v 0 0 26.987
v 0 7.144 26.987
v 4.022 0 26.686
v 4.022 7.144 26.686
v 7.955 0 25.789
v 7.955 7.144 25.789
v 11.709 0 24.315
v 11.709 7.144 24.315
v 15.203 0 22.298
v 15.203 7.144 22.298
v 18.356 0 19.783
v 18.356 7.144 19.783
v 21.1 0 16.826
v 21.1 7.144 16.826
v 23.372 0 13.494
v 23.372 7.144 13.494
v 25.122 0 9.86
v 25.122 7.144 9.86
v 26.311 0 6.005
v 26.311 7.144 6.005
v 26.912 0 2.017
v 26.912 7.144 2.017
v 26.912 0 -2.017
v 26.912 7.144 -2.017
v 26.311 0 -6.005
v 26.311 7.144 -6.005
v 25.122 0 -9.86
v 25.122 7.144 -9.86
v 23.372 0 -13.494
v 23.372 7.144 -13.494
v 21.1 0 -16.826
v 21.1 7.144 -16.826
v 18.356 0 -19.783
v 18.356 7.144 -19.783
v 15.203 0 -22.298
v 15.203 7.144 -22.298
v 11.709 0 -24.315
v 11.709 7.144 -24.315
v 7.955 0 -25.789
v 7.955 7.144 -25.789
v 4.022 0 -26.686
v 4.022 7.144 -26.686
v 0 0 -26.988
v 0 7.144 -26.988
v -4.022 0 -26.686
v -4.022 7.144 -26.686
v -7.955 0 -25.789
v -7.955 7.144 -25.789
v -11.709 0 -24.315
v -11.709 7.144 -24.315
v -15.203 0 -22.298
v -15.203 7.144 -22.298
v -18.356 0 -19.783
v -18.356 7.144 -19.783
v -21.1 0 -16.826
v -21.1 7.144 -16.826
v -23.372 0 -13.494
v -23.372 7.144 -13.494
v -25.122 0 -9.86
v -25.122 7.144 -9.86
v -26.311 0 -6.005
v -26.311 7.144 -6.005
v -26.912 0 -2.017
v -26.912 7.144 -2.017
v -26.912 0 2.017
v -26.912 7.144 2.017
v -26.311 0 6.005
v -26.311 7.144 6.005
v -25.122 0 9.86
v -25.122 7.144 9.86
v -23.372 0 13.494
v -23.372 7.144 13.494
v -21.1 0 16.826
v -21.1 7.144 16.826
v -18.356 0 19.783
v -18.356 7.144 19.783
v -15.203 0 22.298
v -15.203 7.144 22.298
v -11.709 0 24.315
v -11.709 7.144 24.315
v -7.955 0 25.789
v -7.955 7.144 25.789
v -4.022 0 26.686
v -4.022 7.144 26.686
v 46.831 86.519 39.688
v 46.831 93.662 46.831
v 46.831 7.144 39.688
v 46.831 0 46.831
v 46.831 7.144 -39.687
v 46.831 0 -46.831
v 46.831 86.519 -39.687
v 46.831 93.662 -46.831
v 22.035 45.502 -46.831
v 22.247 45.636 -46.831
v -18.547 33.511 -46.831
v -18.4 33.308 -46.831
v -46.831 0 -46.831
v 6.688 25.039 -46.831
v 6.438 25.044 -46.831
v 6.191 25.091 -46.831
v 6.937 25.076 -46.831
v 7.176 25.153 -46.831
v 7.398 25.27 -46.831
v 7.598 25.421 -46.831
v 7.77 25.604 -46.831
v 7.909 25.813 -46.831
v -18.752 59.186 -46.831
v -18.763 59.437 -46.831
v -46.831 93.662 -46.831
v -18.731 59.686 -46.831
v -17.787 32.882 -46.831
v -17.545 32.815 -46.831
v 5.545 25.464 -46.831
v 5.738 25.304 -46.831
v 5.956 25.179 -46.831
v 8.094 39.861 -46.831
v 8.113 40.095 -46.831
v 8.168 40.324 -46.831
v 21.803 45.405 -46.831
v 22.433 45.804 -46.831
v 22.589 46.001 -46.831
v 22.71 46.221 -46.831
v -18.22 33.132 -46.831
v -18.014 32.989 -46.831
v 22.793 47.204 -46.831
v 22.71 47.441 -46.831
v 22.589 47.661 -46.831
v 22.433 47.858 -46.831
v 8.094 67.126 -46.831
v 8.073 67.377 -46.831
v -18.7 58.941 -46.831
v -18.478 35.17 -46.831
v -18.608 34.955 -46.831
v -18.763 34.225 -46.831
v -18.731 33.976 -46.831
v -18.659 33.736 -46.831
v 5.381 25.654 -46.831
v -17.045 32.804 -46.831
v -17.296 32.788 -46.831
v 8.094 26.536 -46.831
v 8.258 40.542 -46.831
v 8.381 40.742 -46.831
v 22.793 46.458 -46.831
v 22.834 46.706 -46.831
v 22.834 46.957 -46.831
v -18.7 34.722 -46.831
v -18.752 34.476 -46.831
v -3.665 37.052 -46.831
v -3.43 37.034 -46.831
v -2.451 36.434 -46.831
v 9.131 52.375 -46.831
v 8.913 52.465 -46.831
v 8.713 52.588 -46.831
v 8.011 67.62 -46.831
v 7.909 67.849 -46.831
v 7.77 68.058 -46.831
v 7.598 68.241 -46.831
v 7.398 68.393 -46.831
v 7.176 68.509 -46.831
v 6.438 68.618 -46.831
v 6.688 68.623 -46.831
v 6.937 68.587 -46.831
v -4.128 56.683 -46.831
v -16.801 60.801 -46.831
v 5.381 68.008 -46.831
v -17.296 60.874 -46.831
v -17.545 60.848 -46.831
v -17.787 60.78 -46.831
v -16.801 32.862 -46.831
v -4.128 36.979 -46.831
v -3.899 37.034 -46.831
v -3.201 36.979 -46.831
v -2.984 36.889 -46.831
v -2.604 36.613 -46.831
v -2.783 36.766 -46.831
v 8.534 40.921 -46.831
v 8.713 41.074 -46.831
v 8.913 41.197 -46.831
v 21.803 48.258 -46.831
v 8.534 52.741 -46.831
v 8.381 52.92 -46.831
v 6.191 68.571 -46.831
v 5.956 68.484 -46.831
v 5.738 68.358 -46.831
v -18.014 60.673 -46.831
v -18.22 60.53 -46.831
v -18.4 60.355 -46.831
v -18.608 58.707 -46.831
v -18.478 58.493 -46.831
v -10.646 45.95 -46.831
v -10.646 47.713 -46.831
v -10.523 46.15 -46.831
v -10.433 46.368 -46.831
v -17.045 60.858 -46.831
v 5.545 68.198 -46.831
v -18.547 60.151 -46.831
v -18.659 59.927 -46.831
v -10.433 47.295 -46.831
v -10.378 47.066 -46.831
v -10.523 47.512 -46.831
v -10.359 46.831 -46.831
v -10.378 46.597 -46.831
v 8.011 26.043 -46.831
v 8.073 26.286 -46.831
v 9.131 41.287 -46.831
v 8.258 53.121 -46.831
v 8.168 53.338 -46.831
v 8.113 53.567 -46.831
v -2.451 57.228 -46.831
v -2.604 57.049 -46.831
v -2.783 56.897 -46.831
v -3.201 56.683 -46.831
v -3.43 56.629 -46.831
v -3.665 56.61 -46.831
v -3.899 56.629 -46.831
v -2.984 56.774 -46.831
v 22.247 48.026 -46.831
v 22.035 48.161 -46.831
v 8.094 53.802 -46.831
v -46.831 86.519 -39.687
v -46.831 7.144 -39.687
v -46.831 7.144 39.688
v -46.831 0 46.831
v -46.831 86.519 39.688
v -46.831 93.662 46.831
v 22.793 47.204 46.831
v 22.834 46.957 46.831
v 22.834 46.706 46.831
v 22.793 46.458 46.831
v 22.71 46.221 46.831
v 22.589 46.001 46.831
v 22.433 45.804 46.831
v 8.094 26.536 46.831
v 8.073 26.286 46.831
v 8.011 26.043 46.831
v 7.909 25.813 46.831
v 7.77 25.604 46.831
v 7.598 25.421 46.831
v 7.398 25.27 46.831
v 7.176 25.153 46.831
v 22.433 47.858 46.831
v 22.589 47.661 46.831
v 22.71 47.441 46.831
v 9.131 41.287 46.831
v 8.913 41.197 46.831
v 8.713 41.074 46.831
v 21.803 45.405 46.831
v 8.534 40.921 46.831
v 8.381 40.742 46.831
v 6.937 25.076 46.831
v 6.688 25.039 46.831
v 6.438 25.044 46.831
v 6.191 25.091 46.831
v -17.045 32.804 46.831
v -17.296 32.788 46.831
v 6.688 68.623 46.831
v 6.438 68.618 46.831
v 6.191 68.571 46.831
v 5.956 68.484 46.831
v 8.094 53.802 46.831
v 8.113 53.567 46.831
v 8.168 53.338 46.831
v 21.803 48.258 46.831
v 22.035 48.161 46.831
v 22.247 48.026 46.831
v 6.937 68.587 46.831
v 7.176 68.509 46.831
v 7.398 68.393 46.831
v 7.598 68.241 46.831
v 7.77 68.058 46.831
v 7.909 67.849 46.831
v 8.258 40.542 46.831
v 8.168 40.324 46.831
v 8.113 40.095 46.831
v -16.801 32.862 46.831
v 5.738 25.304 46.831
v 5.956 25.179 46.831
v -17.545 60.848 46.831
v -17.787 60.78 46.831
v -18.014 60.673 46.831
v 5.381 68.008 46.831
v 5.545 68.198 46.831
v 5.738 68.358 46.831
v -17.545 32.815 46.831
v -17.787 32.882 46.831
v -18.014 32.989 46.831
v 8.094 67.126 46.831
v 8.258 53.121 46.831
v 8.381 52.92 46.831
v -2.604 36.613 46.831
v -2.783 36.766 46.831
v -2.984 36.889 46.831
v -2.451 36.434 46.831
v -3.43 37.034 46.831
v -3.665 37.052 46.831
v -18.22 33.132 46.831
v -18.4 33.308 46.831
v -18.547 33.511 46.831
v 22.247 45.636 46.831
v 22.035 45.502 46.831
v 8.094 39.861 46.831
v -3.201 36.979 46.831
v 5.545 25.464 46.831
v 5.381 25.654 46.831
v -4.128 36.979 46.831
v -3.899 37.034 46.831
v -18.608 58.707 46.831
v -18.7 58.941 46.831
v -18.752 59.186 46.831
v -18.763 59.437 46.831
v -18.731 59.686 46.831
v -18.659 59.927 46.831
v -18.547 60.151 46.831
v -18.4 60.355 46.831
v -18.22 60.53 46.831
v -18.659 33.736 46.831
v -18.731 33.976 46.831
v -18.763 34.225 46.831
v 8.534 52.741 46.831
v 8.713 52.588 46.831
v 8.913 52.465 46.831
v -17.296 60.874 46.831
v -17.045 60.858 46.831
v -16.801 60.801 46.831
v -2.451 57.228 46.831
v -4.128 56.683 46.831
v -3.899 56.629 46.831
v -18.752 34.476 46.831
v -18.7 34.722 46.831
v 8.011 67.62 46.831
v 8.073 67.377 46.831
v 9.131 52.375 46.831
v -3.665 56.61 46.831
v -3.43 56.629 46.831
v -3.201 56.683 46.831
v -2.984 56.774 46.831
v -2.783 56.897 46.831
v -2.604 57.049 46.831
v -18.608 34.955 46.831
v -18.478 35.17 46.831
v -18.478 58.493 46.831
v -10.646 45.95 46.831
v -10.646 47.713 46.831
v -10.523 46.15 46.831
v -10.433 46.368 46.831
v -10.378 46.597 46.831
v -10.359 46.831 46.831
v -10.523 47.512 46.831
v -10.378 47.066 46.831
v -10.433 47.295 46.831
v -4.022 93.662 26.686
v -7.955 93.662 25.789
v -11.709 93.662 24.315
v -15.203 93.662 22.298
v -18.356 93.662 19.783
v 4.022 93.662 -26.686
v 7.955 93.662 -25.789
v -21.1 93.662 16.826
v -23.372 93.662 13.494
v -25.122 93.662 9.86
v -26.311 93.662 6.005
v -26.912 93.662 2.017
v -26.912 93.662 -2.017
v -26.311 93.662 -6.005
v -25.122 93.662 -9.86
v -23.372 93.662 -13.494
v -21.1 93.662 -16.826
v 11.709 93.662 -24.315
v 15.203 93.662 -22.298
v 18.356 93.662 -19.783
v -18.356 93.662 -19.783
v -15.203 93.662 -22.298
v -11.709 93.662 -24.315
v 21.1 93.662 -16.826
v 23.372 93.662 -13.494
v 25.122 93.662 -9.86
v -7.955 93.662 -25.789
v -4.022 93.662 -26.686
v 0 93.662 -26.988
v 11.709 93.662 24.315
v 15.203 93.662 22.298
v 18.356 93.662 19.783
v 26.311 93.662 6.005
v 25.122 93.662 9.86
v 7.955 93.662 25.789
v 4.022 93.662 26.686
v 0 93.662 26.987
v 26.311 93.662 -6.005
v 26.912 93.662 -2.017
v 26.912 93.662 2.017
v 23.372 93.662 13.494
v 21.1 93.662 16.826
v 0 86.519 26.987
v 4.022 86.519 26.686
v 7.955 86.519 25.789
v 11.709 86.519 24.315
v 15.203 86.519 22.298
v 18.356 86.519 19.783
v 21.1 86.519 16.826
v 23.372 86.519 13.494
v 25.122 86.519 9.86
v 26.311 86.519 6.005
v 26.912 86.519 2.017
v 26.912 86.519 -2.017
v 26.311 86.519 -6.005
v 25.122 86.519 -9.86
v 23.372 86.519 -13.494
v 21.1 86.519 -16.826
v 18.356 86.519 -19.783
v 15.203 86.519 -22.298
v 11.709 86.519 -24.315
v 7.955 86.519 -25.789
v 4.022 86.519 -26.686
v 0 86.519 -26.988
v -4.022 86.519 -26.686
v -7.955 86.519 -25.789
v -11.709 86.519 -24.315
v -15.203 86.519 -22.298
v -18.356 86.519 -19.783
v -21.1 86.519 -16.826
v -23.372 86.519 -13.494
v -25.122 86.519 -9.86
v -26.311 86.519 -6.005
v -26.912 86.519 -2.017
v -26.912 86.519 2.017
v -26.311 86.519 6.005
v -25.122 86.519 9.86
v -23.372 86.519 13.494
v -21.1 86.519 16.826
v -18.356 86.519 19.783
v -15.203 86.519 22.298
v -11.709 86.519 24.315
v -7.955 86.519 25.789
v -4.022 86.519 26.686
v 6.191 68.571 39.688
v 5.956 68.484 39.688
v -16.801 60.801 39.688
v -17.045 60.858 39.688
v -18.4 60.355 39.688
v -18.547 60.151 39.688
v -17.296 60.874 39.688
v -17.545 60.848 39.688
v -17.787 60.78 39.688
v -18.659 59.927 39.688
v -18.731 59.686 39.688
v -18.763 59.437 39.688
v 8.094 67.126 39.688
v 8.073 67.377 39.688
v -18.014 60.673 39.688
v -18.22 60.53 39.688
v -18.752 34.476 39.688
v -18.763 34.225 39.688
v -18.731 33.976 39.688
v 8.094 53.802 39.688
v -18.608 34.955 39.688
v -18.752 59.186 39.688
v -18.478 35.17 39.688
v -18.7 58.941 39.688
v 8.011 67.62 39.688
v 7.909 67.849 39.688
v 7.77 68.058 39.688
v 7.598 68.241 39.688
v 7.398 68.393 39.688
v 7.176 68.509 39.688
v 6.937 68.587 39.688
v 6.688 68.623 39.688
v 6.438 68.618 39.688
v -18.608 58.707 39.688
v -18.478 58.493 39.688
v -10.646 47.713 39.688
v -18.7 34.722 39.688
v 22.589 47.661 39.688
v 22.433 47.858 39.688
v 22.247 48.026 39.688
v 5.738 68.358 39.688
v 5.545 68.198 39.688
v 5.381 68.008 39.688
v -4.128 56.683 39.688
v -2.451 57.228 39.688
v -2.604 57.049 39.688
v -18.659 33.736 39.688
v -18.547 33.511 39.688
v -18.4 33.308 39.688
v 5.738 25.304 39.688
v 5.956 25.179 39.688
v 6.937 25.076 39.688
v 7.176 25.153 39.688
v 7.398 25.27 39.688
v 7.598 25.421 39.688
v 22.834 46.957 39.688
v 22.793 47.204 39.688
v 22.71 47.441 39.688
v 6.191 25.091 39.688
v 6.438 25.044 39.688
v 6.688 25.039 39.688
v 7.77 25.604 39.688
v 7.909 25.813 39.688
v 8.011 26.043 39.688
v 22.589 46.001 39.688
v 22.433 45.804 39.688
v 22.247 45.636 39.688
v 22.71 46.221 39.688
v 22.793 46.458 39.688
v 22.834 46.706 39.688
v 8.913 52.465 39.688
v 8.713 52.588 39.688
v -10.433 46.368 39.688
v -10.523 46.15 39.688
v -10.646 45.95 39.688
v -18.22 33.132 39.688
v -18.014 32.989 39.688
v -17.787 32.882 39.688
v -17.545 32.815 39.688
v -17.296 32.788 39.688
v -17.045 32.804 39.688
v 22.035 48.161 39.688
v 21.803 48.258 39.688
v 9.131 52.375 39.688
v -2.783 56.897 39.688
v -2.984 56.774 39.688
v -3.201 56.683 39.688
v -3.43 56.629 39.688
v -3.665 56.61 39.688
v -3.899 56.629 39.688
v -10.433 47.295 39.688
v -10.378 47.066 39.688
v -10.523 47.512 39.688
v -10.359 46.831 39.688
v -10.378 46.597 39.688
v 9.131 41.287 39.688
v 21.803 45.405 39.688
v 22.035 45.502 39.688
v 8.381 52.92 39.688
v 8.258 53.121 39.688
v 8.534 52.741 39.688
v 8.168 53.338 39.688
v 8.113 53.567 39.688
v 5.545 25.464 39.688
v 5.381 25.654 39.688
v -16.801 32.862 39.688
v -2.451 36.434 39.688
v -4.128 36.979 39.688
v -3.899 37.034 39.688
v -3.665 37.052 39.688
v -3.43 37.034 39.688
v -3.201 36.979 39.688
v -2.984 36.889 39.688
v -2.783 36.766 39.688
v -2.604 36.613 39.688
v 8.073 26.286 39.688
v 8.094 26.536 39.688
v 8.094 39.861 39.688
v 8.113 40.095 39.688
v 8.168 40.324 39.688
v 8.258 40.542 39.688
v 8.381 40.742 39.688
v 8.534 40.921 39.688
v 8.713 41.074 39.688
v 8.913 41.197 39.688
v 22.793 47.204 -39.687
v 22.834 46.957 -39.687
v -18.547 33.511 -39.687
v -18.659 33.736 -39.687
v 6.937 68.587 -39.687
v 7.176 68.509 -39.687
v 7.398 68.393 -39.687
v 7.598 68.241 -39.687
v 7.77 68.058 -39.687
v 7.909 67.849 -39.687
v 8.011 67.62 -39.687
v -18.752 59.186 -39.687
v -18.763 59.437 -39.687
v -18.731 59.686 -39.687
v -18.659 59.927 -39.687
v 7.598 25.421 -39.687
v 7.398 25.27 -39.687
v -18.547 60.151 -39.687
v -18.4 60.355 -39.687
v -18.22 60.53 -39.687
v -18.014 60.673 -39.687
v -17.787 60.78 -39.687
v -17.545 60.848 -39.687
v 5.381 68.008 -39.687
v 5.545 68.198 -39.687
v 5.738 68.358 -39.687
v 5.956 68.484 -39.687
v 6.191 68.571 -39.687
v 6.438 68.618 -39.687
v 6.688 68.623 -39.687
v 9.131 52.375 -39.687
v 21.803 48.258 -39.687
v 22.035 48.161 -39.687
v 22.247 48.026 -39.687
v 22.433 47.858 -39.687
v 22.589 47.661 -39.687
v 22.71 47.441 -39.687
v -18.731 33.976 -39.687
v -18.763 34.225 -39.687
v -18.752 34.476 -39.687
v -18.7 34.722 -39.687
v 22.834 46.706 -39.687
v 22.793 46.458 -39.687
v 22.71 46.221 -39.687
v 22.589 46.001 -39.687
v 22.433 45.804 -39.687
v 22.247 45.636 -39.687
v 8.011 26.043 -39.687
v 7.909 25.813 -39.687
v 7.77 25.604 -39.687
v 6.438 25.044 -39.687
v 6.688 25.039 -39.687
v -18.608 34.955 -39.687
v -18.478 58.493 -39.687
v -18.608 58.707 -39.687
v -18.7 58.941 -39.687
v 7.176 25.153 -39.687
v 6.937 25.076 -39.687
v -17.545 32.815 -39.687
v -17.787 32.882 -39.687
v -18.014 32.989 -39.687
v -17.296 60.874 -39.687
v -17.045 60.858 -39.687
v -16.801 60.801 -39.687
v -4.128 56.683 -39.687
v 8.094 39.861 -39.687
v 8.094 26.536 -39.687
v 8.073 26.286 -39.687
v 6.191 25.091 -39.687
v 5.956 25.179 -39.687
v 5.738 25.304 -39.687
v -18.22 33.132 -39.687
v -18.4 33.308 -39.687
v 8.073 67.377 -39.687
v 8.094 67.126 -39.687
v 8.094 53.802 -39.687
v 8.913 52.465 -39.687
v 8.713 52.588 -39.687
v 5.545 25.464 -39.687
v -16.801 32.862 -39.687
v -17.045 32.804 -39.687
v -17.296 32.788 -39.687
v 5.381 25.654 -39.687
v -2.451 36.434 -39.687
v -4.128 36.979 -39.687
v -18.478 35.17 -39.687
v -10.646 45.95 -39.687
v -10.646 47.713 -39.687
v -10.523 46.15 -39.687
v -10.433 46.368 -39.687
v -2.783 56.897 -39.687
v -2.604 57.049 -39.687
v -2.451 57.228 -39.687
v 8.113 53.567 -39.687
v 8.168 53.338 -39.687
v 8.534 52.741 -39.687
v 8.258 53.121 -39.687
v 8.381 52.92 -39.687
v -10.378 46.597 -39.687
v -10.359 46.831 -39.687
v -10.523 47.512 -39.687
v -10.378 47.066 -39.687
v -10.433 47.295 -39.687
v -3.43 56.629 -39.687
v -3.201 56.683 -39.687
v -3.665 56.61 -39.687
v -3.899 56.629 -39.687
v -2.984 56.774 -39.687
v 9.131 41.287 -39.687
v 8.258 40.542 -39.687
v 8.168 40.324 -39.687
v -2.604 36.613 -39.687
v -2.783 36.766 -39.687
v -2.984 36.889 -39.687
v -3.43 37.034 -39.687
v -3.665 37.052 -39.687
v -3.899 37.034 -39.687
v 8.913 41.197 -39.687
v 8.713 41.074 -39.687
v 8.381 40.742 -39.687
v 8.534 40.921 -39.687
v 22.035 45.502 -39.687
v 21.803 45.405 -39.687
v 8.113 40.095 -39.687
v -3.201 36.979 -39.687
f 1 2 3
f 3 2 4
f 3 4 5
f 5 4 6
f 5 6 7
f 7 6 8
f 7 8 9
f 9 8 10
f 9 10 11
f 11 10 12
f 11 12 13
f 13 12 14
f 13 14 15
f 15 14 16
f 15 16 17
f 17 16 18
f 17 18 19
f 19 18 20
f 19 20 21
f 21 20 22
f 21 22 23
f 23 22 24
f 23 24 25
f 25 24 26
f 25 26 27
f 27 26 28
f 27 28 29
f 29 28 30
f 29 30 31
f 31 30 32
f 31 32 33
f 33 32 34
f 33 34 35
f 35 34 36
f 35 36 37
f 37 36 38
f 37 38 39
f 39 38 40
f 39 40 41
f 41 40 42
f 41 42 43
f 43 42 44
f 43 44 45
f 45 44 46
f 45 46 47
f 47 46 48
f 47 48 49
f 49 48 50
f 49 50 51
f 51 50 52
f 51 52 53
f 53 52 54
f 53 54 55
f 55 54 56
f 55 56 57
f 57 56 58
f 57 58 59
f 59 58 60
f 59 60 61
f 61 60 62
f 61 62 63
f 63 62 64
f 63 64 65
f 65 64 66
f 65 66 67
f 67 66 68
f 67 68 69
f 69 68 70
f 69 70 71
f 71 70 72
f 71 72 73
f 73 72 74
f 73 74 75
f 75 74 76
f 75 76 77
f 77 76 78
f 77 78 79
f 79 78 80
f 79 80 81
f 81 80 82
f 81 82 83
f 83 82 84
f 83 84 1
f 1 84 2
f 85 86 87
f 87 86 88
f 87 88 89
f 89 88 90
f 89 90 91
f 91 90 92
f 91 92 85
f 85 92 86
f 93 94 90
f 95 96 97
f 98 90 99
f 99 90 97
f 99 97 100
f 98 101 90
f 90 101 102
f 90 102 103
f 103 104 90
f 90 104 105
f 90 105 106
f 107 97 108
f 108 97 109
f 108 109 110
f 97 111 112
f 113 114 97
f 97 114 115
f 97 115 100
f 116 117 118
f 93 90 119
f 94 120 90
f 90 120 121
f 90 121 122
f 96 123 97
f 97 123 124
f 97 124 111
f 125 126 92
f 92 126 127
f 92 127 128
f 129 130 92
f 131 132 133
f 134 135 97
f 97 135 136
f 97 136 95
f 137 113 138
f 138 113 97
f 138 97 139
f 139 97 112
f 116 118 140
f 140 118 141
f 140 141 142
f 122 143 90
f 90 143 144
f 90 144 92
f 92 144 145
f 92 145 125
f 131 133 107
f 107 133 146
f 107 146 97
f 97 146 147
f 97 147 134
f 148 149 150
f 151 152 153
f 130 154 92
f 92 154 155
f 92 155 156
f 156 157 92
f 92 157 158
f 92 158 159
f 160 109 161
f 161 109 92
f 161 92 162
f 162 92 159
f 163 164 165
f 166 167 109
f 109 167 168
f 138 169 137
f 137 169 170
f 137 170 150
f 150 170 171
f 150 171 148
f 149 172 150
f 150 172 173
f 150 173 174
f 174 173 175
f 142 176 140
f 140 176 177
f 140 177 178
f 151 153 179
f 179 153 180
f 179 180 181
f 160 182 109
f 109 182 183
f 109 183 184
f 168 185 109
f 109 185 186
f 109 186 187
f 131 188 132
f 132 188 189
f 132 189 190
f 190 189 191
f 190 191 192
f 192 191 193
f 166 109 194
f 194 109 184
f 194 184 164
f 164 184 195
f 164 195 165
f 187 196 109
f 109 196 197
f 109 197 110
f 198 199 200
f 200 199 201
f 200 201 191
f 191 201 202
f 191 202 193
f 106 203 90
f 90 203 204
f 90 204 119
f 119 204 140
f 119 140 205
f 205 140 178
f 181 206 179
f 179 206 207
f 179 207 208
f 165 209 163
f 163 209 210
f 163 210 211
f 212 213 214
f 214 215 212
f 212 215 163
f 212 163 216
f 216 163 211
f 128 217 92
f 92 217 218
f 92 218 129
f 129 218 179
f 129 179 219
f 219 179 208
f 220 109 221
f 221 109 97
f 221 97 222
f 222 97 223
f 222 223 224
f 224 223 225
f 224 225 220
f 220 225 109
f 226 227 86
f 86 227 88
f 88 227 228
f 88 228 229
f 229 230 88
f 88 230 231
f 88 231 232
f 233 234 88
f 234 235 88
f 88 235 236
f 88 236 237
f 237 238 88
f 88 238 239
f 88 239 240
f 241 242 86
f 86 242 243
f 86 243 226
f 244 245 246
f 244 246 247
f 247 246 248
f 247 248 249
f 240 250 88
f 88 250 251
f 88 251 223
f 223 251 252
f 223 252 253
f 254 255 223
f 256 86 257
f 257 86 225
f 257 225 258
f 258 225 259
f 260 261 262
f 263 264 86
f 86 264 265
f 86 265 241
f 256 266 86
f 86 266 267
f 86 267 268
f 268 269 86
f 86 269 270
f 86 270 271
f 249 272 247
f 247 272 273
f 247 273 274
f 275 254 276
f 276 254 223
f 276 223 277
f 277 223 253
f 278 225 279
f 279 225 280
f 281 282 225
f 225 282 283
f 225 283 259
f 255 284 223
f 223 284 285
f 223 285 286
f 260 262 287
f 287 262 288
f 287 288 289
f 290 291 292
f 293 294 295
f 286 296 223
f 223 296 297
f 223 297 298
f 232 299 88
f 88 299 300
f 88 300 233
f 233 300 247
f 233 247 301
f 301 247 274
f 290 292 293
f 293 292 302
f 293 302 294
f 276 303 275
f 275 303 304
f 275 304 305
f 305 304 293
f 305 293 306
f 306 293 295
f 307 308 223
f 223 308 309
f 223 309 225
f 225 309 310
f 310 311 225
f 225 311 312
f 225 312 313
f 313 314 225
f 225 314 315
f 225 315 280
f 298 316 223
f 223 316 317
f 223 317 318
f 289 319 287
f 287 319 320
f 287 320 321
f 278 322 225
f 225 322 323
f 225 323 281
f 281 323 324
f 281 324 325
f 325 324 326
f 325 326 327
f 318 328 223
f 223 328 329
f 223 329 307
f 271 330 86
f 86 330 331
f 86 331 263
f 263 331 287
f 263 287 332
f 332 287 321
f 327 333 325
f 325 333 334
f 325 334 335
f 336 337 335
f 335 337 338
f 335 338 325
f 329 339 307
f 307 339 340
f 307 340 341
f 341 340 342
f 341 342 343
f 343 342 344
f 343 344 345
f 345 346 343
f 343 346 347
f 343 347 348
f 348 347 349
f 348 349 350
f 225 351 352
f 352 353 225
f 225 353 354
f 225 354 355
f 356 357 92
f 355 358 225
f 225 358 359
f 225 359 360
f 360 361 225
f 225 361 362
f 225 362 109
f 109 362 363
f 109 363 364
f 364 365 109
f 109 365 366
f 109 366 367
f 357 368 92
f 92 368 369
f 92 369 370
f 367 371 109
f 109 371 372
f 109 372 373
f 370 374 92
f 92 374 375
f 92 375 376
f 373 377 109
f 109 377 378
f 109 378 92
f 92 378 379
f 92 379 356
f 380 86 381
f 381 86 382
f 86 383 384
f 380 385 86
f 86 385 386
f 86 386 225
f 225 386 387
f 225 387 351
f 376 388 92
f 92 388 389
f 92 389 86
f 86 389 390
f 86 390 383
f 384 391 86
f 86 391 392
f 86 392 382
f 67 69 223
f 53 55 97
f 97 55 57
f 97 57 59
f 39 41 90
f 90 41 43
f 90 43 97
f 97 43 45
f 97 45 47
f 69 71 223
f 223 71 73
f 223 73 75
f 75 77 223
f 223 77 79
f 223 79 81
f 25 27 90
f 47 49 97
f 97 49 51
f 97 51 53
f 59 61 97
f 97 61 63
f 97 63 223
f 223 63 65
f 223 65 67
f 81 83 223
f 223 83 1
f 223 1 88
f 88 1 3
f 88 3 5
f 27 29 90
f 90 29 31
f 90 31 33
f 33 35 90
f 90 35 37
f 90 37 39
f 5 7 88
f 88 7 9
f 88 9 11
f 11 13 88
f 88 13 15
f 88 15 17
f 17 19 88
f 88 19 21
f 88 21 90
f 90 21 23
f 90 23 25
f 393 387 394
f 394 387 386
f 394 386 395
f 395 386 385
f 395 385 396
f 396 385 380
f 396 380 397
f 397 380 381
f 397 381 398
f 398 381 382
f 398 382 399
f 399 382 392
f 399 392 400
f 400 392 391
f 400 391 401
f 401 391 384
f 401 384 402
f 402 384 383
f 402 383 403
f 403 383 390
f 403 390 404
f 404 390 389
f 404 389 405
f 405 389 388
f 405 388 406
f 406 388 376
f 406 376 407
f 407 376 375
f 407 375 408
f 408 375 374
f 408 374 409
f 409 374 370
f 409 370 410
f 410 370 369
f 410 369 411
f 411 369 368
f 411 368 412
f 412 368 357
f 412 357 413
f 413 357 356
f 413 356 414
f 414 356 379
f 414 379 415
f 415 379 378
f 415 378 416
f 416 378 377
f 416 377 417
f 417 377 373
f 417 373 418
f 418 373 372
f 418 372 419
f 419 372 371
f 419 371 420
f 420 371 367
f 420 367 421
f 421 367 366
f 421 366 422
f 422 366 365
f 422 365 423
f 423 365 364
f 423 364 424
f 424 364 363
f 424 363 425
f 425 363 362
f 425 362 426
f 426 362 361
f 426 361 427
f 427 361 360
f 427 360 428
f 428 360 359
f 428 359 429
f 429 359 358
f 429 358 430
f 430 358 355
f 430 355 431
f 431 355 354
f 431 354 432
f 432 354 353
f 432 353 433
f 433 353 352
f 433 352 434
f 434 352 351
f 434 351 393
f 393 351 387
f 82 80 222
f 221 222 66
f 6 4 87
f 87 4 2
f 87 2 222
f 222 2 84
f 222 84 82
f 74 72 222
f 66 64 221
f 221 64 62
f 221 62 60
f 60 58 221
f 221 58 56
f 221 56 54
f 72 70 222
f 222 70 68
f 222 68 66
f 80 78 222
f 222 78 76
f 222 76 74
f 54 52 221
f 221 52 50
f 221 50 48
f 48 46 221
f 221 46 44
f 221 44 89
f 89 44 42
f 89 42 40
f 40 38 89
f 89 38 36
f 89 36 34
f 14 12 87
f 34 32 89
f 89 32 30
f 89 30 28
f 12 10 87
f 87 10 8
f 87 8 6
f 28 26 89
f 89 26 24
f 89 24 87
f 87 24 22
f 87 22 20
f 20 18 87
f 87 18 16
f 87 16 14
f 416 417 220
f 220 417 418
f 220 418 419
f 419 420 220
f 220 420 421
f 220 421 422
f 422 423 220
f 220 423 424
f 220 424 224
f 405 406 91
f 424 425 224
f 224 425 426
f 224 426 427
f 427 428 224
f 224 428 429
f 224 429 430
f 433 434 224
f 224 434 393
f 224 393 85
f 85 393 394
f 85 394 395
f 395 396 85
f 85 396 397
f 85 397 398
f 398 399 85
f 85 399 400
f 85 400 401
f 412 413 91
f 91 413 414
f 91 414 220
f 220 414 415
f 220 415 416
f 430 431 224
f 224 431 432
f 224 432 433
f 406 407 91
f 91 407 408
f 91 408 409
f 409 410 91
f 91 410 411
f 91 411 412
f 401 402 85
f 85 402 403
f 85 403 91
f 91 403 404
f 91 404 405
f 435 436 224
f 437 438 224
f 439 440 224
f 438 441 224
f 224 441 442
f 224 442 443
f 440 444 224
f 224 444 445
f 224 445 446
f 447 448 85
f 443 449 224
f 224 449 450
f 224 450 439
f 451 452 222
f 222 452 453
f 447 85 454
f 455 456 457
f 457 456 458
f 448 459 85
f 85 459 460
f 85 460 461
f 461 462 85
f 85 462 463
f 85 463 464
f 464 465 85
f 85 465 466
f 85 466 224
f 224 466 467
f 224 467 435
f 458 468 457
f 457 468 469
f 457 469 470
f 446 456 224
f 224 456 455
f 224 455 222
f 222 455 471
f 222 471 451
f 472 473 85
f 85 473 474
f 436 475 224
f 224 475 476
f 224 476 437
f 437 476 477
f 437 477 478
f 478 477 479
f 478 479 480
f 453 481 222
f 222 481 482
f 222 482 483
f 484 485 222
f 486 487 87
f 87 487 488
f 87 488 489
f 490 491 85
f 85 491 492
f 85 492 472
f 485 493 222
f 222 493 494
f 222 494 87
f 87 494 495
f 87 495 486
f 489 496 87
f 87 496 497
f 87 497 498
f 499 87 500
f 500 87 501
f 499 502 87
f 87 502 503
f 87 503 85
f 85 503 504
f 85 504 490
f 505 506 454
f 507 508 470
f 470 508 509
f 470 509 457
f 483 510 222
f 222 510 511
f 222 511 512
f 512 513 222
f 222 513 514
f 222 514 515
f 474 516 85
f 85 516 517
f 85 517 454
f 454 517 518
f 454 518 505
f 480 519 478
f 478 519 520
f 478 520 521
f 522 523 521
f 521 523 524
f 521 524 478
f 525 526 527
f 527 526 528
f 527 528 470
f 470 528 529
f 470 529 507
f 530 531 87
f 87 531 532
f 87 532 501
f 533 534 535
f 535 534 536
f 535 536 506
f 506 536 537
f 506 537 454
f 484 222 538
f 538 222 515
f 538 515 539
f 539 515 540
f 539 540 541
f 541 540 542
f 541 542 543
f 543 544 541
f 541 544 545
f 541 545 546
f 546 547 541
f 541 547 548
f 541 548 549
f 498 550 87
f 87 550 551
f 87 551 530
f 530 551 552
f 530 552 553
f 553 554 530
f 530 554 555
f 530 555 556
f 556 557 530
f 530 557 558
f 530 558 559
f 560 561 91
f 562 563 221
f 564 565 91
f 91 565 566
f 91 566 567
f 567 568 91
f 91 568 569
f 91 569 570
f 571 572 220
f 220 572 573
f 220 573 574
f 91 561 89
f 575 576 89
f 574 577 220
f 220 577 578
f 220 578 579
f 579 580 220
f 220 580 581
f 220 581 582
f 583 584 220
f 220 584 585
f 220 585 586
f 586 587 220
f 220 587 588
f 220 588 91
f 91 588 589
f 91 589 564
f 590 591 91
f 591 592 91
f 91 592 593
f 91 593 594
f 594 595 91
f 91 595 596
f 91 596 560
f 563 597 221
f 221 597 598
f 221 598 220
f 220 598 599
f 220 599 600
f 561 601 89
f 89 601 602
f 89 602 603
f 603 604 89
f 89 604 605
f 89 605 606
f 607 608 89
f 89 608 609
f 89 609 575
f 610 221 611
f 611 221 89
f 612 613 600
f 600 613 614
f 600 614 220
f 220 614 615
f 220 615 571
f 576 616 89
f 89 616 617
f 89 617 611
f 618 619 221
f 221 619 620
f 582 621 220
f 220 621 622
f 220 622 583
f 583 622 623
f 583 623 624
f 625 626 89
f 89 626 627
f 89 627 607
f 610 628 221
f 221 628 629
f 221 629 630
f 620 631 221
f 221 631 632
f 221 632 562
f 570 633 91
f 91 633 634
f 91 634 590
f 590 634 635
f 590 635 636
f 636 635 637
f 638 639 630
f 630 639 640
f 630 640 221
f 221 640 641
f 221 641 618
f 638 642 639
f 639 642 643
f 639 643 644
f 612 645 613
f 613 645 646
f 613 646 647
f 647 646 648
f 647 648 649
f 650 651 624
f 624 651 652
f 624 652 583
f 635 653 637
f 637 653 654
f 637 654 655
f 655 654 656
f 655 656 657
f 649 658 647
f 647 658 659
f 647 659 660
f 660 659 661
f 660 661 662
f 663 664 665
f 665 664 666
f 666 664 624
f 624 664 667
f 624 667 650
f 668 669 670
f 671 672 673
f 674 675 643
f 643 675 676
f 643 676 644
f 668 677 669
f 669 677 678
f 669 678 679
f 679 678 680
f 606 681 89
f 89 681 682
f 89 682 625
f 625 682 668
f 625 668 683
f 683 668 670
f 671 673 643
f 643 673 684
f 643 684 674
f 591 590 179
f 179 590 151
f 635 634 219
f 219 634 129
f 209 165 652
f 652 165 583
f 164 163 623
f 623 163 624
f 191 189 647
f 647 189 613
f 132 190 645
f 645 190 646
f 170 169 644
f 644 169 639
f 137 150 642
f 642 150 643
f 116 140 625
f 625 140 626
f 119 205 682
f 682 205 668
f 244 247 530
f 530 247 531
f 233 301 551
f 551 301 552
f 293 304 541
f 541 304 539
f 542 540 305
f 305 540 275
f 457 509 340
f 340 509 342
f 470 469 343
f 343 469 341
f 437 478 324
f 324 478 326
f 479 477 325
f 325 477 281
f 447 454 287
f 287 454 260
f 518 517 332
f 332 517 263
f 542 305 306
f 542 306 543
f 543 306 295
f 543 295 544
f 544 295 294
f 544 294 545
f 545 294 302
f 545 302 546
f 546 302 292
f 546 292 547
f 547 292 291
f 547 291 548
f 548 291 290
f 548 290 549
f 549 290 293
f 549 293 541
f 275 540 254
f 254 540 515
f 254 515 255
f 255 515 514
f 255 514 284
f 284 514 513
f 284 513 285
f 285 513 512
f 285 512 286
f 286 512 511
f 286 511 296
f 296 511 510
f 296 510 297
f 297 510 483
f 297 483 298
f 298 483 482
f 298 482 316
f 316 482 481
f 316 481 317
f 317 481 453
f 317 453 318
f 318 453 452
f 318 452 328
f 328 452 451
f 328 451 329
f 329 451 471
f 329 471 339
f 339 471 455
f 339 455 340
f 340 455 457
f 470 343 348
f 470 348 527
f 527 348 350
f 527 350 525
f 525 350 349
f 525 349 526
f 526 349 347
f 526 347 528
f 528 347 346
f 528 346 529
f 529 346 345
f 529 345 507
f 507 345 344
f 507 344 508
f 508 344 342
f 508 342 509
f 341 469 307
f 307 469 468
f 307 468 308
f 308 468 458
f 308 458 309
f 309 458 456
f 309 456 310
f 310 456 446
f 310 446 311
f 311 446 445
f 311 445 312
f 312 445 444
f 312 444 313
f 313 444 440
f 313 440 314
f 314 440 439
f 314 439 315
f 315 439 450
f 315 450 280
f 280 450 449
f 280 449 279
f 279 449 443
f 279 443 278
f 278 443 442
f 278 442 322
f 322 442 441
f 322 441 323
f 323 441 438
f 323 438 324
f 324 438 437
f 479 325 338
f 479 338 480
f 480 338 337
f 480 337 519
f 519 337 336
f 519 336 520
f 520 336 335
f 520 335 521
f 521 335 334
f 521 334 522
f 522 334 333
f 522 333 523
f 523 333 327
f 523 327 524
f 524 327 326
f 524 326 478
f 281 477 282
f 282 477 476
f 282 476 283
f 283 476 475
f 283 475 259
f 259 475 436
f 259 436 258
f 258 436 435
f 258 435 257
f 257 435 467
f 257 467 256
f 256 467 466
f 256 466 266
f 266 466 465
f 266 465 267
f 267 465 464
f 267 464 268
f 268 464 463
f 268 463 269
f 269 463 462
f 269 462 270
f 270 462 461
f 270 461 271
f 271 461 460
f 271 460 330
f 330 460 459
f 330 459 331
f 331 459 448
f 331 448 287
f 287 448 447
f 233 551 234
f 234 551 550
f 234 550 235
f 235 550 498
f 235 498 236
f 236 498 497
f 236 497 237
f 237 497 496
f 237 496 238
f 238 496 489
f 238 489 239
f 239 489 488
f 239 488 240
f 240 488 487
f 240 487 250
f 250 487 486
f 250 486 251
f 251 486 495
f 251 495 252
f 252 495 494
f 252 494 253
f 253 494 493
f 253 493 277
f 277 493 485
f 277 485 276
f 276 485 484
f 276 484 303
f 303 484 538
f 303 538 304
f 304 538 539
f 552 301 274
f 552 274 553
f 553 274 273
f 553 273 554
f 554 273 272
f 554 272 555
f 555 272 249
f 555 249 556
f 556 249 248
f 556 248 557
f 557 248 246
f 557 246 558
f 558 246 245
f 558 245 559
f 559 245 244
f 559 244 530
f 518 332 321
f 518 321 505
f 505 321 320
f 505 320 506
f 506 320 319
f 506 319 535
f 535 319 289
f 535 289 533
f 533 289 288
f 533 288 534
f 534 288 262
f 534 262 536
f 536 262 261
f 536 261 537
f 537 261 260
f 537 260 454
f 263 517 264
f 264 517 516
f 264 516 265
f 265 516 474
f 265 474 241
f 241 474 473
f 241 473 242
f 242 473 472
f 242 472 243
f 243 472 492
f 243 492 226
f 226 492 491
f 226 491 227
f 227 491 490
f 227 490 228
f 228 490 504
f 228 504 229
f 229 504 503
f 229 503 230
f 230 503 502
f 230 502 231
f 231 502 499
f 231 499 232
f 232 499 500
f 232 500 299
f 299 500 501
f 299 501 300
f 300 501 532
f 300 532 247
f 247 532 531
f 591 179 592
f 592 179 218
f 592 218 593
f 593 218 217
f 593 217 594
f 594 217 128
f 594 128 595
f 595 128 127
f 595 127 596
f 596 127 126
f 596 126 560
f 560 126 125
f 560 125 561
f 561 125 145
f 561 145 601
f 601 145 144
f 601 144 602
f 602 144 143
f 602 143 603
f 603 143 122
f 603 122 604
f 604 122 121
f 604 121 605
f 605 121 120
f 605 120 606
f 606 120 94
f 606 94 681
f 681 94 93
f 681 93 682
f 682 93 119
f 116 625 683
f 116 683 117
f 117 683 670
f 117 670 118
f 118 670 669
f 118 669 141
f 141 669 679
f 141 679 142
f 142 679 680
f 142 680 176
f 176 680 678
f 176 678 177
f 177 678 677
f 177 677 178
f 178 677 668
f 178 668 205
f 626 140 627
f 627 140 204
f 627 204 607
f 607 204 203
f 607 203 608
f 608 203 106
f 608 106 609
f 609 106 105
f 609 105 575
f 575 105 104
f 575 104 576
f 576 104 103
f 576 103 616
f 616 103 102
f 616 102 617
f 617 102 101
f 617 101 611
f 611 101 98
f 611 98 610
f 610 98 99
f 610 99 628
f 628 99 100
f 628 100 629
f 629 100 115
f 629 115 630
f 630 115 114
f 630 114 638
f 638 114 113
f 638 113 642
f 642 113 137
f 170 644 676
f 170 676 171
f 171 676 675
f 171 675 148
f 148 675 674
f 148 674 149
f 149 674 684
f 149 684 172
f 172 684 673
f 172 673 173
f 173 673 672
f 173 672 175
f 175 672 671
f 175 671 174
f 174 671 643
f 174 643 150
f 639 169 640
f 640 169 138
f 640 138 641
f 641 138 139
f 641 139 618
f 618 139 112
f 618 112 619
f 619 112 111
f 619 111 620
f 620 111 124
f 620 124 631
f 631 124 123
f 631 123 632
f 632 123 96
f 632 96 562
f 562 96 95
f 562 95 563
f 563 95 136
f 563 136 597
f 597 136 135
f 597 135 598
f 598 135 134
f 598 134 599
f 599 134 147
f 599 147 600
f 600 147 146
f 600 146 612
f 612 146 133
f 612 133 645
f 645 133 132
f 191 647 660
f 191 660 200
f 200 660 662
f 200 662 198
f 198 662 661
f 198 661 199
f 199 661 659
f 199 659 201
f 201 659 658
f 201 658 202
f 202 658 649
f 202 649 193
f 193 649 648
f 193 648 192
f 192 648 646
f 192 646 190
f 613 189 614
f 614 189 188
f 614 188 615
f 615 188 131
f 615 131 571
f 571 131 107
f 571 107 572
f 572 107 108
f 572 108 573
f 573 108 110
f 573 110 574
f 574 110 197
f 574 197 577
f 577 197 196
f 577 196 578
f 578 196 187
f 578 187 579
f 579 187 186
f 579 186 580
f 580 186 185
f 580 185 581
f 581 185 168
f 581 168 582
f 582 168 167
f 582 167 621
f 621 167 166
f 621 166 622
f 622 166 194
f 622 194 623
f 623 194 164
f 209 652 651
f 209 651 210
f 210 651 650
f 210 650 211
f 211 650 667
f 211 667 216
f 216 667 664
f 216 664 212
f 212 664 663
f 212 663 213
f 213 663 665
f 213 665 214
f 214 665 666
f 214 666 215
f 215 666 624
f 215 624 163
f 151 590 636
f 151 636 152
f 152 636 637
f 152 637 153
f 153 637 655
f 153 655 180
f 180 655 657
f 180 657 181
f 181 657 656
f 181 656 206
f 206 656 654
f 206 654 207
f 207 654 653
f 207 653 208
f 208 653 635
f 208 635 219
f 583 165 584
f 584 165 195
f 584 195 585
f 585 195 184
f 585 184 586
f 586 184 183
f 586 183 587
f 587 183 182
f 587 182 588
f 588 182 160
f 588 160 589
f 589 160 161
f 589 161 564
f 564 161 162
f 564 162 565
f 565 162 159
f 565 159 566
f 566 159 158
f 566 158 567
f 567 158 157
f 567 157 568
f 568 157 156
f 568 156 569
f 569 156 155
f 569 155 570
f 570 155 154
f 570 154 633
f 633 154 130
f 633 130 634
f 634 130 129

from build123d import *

# Parameters (mm, degrees)
SKETCH1_W           = 93.6625
SKETCH1_H           = 93.6625
BOSS_EXTRUDE1_DEPTH = 93.6625
SKETCH3_R           = 26.9875
CUT_EXTRUDE1_DEPTH  = 115.712666517
SKETCH4_W           = 79.375
SKETCH4_H           = 79.375
CUT_EXTRUDE2_DEPTH  = 141.49375
CUT_EXTRUDE3_DEPTH  = 141.49375
FILLET1_R           = 1.5
FILLET2_R           = 1.5


with BuildPart() as part:
    # Sketch1 → Boss-Extrude1 (new body)
    with BuildSketch(Plane(origin=(0, 0, 0), x_dir=(1, 0, 0), z_dir=(0, 1, 0))):
        Rectangle(SKETCH1_W, SKETCH1_H)
    extrude(amount=BOSS_EXTRUDE1_DEPTH)

    # Sketch3 → Cut-Extrude1 (cut, through all)
    with BuildSketch(Plane(origin=(0, 93.6625, 0), x_dir=(1, 0, 0), z_dir=(0, 1, 0))):
        with Locations(Location((0, 0, 0), (0, 0, 270))):
            Circle(SKETCH3_R)
    extrude(amount=-CUT_EXTRUDE1_DEPTH, mode=Mode.SUBTRACT)

    # Sketch4 → Cut-Extrude2 (cut, through all)
    with BuildSketch(Plane.ZY.offset(46.83125)):
        with Locations((0, 46.83125)):
            Rectangle(SKETCH4_W, SKETCH4_H)
    extrude(amount=-CUT_EXTRUDE2_DEPTH, mode=Mode.SUBTRACT)

    # Sketch5 → Cut-Extrude3 (cut, through all)
    with BuildSketch(Plane.XY.offset(46.83125)):
        Polygon((26.19375, 46.83125), (8.094313896, 52.712113281), (8.094313896, 71.742986624), (-3.091752793, 56.346686671), (-21.191188896, 62.227549952), (-10.005122207, 46.83125), (-21.191188896, 31.434950048), (-3.091752793, 37.315813329), (8.094313896, 21.919513376), (8.094313896, 40.950386719), align=None)
    extrude(amount=-CUT_EXTRUDE3_DEPTH, mode=Mode.SUBTRACT)

    # Fillet1
    fillet1_edges = [part.edges().sort_by_distance(p)[0] for p in [
        (26.19375, 46.83125, 43.259375),
        (8.094313896, 40.950386719, 43.259375),
        (8.094313896, 21.919513376, 43.259375),
        (-3.091752793, 37.315813329, 43.259375),
        (-21.191188896, 31.434950048, 43.259375),
        (-10.005122207, 46.83125, 43.259375),
        (-21.191188896, 62.227549952, 43.259375),
        (-3.091752793, 56.346686671, 43.259375),
        (8.094313896, 71.742986624, 43.259375),
        (8.094313896, 52.712113281, 43.259375),
    ]]
    fillet(fillet1_edges, radius=FILLET1_R)

    # Fillet2
    fillet2_edges = [part.edges().sort_by_distance(p)[0] for p in [
        (26.19375, 46.83125, -43.259375),
        (8.094313896, 40.950386719, -43.259375),
        (8.094313896, 21.919513376, -43.259375),
        (-3.091752793, 37.315813329, -43.259375),
        (-21.191188896, 31.434950048, -43.259375),
        (-10.005122207, 46.83125, -43.259375),
        (-21.191188896, 62.227549952, -43.259375),
        (-3.091752793, 56.346686671, -43.259375),
        (8.094313896, 71.742986624, -43.259375),
        (8.094313896, 52.712113281, -43.259375),
    ]]
    fillet(fillet2_edges, radius=FILLET2_R)


solid = part.part
